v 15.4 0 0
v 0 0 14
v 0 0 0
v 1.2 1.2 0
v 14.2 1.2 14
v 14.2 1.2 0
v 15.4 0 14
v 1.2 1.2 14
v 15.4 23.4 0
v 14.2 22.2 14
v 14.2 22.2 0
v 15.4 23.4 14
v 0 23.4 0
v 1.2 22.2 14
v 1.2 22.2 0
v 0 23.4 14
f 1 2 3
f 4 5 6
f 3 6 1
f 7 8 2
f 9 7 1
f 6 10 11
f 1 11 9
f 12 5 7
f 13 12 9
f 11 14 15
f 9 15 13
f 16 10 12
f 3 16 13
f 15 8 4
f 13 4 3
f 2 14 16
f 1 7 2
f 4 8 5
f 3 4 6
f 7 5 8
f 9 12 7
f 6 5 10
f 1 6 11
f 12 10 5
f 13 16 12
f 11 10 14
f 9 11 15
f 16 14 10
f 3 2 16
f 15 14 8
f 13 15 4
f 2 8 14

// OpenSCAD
// Units: mm. Four walls, open at both ends. No assembly clearance added.
inner_width = 13;
inner_length = 21;
height = 14;
wall = 1.2;
difference() {
    cube([inner_width + 2*wall, inner_length + 2*wall, height]);
    translate([wall, wall, -1])
        cube([inner_width, inner_length, height + 2]);
}
